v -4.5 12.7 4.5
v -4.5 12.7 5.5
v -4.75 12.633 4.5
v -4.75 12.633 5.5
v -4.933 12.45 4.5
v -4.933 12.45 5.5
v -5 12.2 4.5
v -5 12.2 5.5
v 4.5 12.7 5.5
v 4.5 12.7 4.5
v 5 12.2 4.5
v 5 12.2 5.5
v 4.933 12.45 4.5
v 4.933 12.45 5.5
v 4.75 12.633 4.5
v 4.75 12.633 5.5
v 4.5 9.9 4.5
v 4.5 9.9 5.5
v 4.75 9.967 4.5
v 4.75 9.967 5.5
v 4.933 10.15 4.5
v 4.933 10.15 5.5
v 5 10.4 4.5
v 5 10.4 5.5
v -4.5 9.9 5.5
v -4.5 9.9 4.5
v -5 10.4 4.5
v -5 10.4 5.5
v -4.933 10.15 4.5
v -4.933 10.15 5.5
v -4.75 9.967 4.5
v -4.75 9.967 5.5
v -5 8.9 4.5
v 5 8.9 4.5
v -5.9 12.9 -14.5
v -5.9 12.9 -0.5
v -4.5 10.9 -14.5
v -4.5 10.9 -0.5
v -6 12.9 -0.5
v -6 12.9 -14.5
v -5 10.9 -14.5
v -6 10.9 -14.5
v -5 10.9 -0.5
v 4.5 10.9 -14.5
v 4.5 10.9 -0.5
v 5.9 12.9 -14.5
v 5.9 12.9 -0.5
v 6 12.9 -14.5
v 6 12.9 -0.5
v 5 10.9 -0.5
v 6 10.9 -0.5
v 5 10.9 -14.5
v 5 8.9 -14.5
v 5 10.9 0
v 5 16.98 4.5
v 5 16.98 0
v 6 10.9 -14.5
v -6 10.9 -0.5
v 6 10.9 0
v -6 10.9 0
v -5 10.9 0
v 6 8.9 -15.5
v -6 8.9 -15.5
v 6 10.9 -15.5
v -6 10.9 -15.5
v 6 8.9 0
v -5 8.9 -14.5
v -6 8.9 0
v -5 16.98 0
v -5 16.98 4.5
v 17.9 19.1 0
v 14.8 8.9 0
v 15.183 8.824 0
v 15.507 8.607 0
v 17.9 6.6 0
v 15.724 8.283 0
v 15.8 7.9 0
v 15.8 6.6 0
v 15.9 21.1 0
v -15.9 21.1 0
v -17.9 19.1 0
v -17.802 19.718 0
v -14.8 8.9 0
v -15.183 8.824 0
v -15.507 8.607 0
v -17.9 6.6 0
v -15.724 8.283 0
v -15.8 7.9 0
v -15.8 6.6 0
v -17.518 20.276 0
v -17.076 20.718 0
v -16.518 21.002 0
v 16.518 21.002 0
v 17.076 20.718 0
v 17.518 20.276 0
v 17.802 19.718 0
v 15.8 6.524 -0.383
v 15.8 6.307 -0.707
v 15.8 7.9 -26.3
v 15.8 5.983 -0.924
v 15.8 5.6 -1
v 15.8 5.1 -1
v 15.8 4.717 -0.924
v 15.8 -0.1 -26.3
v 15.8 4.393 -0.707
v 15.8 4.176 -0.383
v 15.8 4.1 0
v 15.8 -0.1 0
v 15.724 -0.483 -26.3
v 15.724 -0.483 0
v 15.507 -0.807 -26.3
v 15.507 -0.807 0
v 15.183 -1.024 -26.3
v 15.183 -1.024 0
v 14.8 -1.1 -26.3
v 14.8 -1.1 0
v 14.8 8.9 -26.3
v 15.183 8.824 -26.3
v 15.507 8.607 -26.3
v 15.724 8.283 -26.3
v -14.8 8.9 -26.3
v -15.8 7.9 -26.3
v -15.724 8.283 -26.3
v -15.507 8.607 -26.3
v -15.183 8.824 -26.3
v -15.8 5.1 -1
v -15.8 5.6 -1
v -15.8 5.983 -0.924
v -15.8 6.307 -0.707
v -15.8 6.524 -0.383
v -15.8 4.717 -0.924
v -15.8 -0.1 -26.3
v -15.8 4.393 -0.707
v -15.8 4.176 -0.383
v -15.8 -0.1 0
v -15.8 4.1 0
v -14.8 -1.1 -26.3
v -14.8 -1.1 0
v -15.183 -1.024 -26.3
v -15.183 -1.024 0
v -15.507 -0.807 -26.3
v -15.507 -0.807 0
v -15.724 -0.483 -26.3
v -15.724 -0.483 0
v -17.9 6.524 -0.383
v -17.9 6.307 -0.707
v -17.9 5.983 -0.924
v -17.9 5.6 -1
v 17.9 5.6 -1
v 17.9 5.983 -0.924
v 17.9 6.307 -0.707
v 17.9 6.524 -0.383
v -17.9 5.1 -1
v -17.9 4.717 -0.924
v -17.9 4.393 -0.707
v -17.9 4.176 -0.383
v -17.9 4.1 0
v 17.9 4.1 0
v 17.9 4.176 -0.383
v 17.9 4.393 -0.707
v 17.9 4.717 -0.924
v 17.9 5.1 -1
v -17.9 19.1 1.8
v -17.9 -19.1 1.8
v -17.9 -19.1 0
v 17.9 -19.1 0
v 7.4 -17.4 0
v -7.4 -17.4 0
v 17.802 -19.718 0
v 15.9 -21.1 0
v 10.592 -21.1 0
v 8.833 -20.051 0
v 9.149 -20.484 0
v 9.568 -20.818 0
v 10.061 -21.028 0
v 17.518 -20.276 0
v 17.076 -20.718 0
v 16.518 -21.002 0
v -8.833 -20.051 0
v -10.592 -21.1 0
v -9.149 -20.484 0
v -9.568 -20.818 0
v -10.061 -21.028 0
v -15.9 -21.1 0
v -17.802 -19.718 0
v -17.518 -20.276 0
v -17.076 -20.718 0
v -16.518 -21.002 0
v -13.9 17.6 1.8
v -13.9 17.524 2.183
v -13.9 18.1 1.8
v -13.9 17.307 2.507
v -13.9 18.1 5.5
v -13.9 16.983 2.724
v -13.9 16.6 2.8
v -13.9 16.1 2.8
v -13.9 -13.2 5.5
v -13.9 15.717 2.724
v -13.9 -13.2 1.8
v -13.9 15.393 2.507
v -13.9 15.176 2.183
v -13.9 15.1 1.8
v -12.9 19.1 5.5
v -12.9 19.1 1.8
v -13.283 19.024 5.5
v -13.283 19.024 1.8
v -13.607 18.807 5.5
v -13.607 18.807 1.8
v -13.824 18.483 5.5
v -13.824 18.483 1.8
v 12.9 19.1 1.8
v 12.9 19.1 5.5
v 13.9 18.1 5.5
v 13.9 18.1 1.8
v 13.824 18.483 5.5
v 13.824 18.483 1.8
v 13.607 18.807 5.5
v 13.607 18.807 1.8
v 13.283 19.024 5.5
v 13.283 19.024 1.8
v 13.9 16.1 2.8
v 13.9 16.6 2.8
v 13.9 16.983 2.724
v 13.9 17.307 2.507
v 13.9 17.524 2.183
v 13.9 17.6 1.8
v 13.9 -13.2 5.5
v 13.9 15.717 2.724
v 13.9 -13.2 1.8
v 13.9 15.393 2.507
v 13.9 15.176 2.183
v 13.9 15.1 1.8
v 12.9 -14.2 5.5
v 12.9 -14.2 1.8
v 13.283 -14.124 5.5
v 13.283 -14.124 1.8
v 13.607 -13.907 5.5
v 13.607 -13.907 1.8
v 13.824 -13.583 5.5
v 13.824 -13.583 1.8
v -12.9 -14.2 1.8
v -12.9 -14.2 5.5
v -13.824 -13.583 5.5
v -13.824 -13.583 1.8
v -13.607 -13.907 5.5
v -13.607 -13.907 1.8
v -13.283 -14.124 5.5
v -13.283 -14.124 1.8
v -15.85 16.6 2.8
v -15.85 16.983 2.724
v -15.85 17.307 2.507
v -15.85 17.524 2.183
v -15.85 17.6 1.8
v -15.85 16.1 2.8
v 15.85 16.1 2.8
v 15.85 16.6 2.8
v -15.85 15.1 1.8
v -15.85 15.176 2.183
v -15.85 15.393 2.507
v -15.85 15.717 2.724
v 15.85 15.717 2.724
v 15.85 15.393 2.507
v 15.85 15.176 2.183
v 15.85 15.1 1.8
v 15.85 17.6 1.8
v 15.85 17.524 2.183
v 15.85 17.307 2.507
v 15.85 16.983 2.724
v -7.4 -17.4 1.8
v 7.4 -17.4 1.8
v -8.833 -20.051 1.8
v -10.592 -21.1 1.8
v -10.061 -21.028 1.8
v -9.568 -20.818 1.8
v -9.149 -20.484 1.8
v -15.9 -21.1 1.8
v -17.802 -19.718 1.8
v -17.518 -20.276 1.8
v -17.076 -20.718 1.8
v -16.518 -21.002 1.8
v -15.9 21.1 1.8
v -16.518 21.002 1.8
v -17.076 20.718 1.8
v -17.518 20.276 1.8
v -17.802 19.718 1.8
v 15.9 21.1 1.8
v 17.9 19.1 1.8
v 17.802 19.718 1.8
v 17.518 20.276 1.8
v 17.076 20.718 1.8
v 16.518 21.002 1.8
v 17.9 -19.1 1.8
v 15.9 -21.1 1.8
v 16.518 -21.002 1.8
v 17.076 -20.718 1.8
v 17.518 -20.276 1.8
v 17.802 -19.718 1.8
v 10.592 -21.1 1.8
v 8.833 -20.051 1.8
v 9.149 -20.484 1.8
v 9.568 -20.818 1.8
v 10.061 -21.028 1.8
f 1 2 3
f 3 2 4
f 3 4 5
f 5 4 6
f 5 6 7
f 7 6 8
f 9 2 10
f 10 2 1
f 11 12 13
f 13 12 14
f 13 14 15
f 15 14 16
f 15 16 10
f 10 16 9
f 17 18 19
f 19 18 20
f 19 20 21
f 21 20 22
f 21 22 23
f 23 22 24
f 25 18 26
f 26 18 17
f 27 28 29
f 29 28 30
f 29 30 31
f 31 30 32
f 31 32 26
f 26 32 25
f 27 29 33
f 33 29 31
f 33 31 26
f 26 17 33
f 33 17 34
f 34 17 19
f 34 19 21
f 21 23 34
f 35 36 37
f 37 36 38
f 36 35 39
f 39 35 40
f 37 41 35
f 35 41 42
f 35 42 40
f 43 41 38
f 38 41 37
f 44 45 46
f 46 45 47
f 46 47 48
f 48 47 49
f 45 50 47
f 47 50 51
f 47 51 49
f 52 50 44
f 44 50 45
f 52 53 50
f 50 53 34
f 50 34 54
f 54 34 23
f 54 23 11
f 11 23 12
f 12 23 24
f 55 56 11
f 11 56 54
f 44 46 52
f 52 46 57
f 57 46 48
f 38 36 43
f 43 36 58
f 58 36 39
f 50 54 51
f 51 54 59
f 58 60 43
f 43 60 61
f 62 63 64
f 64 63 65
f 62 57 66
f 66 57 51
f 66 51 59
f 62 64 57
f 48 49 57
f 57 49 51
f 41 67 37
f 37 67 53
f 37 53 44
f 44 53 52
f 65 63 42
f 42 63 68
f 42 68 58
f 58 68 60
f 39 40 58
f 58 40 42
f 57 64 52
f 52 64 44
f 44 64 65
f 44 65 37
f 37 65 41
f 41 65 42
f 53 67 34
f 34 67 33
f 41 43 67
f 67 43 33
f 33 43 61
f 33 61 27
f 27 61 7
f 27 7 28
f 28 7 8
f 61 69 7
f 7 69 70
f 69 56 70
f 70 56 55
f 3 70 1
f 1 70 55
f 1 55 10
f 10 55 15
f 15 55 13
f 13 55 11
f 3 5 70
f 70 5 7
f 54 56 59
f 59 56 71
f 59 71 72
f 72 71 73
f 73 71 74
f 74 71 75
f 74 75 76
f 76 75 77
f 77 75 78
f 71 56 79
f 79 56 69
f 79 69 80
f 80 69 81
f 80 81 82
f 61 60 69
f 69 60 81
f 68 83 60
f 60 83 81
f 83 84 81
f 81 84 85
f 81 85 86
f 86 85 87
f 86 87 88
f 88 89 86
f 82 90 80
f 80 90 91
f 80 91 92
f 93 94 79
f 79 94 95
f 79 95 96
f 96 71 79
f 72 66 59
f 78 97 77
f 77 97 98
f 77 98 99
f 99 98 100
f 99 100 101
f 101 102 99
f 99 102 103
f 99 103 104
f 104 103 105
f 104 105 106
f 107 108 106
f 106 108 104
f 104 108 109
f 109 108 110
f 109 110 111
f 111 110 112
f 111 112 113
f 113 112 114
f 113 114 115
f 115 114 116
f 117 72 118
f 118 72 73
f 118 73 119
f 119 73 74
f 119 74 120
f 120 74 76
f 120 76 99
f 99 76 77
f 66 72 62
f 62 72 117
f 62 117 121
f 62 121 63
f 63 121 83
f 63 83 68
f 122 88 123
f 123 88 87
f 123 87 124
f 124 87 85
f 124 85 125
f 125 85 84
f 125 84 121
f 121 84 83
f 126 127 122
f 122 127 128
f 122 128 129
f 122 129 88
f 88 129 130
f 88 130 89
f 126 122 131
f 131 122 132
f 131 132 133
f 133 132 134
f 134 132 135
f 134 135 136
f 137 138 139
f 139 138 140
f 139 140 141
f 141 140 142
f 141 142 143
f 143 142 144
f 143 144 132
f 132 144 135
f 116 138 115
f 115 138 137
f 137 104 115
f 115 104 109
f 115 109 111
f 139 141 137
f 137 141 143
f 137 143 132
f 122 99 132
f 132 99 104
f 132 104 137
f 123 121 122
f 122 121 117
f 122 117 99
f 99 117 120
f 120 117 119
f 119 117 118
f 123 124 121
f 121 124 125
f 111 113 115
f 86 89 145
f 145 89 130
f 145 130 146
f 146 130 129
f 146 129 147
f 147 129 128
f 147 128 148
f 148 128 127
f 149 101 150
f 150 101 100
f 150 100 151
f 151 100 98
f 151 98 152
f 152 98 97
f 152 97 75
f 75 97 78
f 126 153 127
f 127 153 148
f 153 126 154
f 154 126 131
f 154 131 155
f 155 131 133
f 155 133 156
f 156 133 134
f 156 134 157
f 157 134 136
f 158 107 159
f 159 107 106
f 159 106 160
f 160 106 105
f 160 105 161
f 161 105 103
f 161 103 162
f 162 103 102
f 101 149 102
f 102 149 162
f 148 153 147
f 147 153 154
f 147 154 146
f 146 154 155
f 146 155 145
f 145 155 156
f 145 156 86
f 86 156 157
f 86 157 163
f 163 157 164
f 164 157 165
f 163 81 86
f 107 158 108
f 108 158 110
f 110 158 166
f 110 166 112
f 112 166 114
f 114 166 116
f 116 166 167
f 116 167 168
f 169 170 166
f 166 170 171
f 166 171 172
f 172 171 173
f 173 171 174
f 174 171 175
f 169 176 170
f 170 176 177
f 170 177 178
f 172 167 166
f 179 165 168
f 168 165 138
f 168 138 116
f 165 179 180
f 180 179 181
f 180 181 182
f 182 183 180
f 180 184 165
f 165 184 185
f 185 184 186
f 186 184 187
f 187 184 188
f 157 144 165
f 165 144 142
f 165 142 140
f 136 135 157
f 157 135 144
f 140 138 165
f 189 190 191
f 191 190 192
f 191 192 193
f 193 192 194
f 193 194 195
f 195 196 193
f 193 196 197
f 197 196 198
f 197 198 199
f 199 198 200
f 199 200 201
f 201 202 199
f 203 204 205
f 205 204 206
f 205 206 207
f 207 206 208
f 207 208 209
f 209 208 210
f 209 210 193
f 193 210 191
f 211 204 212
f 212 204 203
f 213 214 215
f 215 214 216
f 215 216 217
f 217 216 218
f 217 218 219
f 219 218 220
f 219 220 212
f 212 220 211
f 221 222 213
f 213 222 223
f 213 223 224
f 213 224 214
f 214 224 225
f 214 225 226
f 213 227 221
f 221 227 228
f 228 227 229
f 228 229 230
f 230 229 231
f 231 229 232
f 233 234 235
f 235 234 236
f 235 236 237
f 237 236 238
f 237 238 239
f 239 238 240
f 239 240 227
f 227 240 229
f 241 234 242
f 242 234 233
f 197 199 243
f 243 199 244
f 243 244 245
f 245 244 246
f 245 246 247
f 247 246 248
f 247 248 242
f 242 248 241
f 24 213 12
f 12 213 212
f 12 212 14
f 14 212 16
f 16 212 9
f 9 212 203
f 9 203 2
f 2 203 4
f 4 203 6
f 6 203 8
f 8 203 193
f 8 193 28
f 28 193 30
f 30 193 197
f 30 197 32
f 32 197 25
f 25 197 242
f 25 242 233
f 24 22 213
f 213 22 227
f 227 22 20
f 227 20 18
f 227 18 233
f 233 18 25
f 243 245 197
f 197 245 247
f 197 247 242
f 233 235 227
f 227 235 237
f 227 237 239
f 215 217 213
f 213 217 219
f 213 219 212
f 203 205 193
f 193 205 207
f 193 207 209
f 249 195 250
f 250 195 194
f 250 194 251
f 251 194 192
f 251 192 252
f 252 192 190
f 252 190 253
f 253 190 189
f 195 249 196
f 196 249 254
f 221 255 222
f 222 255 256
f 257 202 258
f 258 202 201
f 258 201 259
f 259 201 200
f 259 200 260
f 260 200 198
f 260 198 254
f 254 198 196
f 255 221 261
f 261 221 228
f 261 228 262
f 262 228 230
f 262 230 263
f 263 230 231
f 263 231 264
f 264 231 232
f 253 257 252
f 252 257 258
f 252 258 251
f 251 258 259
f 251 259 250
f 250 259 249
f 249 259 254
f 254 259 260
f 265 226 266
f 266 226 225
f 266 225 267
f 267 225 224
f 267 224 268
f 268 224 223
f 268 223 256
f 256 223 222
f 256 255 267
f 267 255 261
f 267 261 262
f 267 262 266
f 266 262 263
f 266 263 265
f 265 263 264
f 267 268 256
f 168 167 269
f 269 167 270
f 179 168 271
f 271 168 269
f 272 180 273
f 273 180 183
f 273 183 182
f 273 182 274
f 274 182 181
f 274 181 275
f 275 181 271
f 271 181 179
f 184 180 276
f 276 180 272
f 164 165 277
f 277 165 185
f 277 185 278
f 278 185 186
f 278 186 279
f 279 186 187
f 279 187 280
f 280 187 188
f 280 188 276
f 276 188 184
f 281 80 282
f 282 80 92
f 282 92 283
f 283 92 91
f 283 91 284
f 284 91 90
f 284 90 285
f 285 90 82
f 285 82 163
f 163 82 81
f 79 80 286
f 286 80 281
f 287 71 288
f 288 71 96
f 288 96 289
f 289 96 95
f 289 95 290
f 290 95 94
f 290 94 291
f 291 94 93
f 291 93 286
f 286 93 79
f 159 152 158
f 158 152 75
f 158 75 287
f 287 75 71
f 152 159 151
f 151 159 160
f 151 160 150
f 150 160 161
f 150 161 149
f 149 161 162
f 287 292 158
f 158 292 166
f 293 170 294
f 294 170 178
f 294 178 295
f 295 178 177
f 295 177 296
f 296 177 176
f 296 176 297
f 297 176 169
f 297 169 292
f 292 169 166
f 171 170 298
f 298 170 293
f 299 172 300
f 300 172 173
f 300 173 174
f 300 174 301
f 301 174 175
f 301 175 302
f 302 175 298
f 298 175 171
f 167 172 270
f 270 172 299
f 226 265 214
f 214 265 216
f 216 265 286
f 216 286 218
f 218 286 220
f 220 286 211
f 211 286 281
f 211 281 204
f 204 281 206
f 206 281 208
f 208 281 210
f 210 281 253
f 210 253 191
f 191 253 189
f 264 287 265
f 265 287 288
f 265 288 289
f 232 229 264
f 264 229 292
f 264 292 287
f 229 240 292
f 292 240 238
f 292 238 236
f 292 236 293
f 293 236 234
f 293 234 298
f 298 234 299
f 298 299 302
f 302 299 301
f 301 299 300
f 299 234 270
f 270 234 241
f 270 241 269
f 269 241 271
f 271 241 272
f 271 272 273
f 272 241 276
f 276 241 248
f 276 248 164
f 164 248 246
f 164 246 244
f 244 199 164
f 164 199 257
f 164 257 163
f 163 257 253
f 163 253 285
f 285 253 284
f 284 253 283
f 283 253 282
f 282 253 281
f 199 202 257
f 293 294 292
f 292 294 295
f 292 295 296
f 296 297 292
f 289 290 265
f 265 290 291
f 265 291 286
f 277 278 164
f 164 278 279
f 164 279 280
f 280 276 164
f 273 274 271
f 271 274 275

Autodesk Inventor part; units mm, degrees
ref_plane "YZ Plane" through (0, 0, 0) normal (1, 0, 0) x (0, 1, 0)
ref_plane "XZ Plane" through (0, 0, 0) normal (0, 1, 0) x (-1, 0, 0)
ref_plane "XY Plane" through (0, 0, 0) normal (0, 0, 1) x (1, 0, 0)
sketch "Sketch1" plane through (0, 0, 0) normal (0, 0, 1) x (1, 0, 0)
  line L0 (17.9, -19.1) -> (17.9, 19.1)
  line L1 (15.9, 21.1) -> (-15.9, 21.1)
  line L2 (-17.9, 19.1) -> (-17.9, -19.1)
  line L3 (-15.9, -21.1) -> (-10.5924, -21.1)
  line L4 (17.9, -21.1) -> (-17.9, 21.1) construction
  line L5 (17.9, 21.1) -> (-17.9, -21.1) construction
  line L6 (-7.4, -17.4) -> (7.4, -17.4)
  line L7 (-7.4, -17.4) -> (-8.833, -20.051)
  line L8 (7.4, -17.4) -> (8.833, -20.051)
  line L9 (10.5924, -21.1) -> (15.9, -21.1)
  line L10 (-9.4, -21.1) -> (9.4, -21.1)
  arc A0 (-15.9, 21.1) -> (-17.9, 19.1) centre (-15.9, 19.1) ccw
  arc A1 (17.9, 19.1) -> (15.9, 21.1) centre (15.9, 19.1) ccw
  arc A2 (15.9, -21.1) -> (17.9, -19.1) centre (15.9, -19.1) ccw
  arc A3 (8.833, -20.051) -> (10.5924, -21.1) centre (10.5924, -19.1) ccw
  arc A4 (-10.5924, -21.1) -> (-8.833, -20.051) centre (-10.5924, -19.1) ccw
  arc A5 (-17.9, -19.1) -> (-15.9, -21.1) centre (-15.9, -19.1) ccw
  point P0 (0, 0)
  dimension "d0" = 35.8
  dimension "d1" = 42.2
  dimension "d2" = 38.5
  dimension "d3" = 10.5
  dimension "d4" = 10.5
  dimension "d5" = 8.5
  dimension "d6" = 8.5
  dimension "d7" = 2
extrude "Extrusion1" add sketch "Sketch1" along normal blind 1.8
sketch "Sketch2" plane through (0, 0, 1.8) normal (0, 0, 1) x (1, 0, 0)
  line L0 (-15.85, 15.1) -> (15.85, 15.1)
  line L1 (15.85, 15.1) -> (15.85, 17.6)
  line L2 (15.85, 17.6) -> (-15.85, 17.6)
  line L3 (-15.85, 17.6) -> (-15.85, 15.1)
  line L4 (-15.85, 15.1) -> (15.85, 17.6) construction
  line L5 (15.85, 15.1) -> (-15.85, 17.6) construction
  line L6 (15.9, 21.1) -> (-15.9, 21.1) projected
  point P0 (0, 0)
  point P1 (0, 16.35)
  point P2 (0, 16.35)
  point P3 (15.85, 16.35)
  point P4 (-15.85, 16.35)
  dimension "d10" = 2.5
  dimension "d11" = 6
  dimension "d12" = 31.7
extrude "Extrusion2" add sketch "Sketch2" along normal blind 1
fillet "Fillet1" radius 1 2 edges at (0, 17.6, 2.8) (0, 15.1, 2.8)
sketch "Sketch3" plane through (0, 0, 1.8) normal (0, 0, 1) x (1, 0, 0)
  line L0 (-12.9, 19.1) -> (12.9, 19.1)
  line L1 (13.9, 18.1) -> (13.9, -13.2)
  line L2 (12.9, -14.2) -> (-12.9, -14.2)
  line L3 (-13.9, -13.2) -> (-13.9, 18.1)
  line L4 (15.9, 21.1) -> (-15.9, 21.1) projected
  line L5 (-13.9, 2.9131) -> (-17.9, 2.9131)
  line L6 (-17.9, 19.1) -> (-17.9, -19.1) projected
  line L7 (13.9, 2.9131) -> (17.9, 2.9131)
  line L8 (17.9, -19.1) -> (17.9, 19.1) projected
  arc A0 (-12.9, 19.1) -> (-13.9, 18.1) centre (-12.9, 18.1) ccw
  arc A1 (13.9, 18.1) -> (12.9, 19.1) centre (12.9, 18.1) ccw
  arc A2 (12.9, -14.2) -> (13.9, -13.2) centre (12.9, -13.2) ccw
  arc A3 (-13.9, -13.2) -> (-12.9, -14.2) centre (-12.9, -13.2) ccw
  point P0 (0, 0)
  point P1 (13.9, -14.2)
  point P2 (13.9, 19.1)
  point P3 (-13.9, -14.2)
  dimension "d16" = 27.8
  dimension "d17" = 33.3
  dimension "d18" = 2
  dimension "d19" = 1
extrude "Extrusion3" add sketch "Sketch3" along normal blind 3.7
sketch "Sketch4" plane through (0, 0, 0) normal (0, 0, -1) x (-1, 0, 0)
  line L0 (-17.9, -19.1) -> (-17.9, 19.1) projected
  line L1 (17.9, 19.1) -> (17.9, -19.1) projected
  line L2 (-17.9, 6.6) -> (17.9, 6.6)
  line L3 (17.9, 6.6) -> (17.9, 4.1)
  line L4 (17.9, 4.1) -> (-17.9, 4.1)
  line L5 (-17.9, 4.1) -> (-17.9, 6.6)
  line L6 (-15.9, 21.1) -> (15.9, 21.1) projected
  point P0 (0, 0)
  dimension "d22" = 2.5
  dimension "d23" = 17
extrude "Extrusion4" add sketch "Sketch4" along normal blind 1
fillet "Fillet2" radius 1 2 edges at (0, 6.6, -1) (0, 4.1, -1)
sketch "Sketch5" plane through (0, 0, 0) normal (0, 0, -1) x (-1, 0, 0)
  line L0 (-14.8, 8.9) -> (14.8, 8.9)
  line L1 (15.8, 7.9) -> (15.8, -0.1)
  line L2 (14.8, -1.1) -> (-14.8, -1.1)
  line L3 (-15.8, -0.1) -> (-15.8, 7.9)
  line L4 (-15.9, 21.1) -> (15.9, 21.1) projected
  line L5 (-17.9, 6.6) -> (-17.9, 19.1) projected
  line L6 (17.9, 4.1) -> (17.9, -19.1) projected
  arc A0 (-15.8, -0.1) -> (-14.8, -1.1) centre (-14.8, -0.1) ccw
  arc A1 (-14.8, 8.9) -> (-15.8, 7.9) centre (-14.8, 7.9) ccw
  arc A2 (15.8, 7.9) -> (14.8, 8.9) centre (14.8, 7.9) ccw
  arc A3 (14.8, -1.1) -> (15.8, -0.1) centre (14.8, -0.1) ccw
  point P0 (0, 0)
  point P1 (0, 8.9)
  dimension "d27" = 22.2
  dimension "d28" = 2.1
  dimension "d29" = 10
  dimension "d30" = 2.1
  dimension "d31" = 1
extrude "Extrusion5" add sketch "Sketch5" along normal blind 26.3
sketch "Sketch6" plane through (0, 0, 0) normal (0, 0, -1) x (-1, 0, 0)
  line L0 (-5, 16.9799) -> (5, 16.9799)
  line L1 (5, 16.9799) -> (5, 8.9)
  line L2 (5, 8.9) -> (-5, 8.9)
  line L3 (-5, 8.9) -> (-5, 16.9799)
  line L4 (14.8, 8.9) -> (-14.8, 8.9) projected
  line L5 (5, 16.9799) -> (17.9, 16.9799)
  line L6 (17.9, 19.1) -> (17.9, 6.6) projected
  line L7 (-5, 16.9799) -> (-17.9, 16.9799)
  line L8 (-17.9, -19.1) -> (-17.9, 19.1) projected
  point P0 (0, 0)
  point P1 (-5, 12.94)
  dimension "d34" = 10
extrude "Extrusion6" cut sketch "Sketch6" against normal blind 4.5
sketch "Sketch7" plane through (-14.8, 8.9, -26.3) normal (0, 1, 0) x (1, 0, 0)
  line L0 (9.8, -30.8) -> (19.8, -30.8) projected
  line L1 (14.8, -30.8) -> (14.8, -11.8)
  line L2 (8.8, -11.8) -> (20.8, -11.8)
  line L3 (20.8, -11.8) -> (20.8, -10.8)
  line L4 (20.8, -10.8) -> (8.8, -10.8)
  line L5 (8.8, -10.8) -> (8.8, -11.8)
  line L6 (20.8, -11.8) -> (20.8, -26.3)
  line L7 (20.8, -26.3) -> (19.8, -26.3)
  line L8 (19.8, -26.3) -> (19.8, -11.8)
  line L9 (8.8, -11.8) -> (8.8, -26.3)
  line L10 (8.8, -26.3) -> (9.8, -26.3)
  line L11 (9.8, -26.3) -> (9.8, -11.8)
  point P0 (14.8, -26.3)
  dimension "d37" = 19
  dimension "d38" = 12
  dimension "d39" = 1
  dimension "d40" = 1
  dimension "d41" = 14.5
extrude "Extrusion7" add sketch "Sketch7" along normal blind 2
sketch "Sketch8" plane through (-14.8, 10.9, -26.3) normal (0, 1, 0) x (1, 0, 0)
  line L0 (9.8, -11.8) -> (19.8, -11.8) projected
  line L1 (20.8, -26.3) -> (20.8, -10.8) projected
  line L2 (19.8, -11.8) -> (20.8, -11.8)
  line L3 (20.8, -11.8) -> (20.8, -25.8)
  line L4 (20.8, -25.8) -> (19.8, -25.8)
  line L5 (19.8, -25.8) -> (19.8, -11.8)
  line L6 (9.8, -11.8) -> (9.8, -30.8) projected
  line L7 (8.8, -26.3) -> (8.8, -10.8) projected
  line L8 (9.8, -11.8) -> (8.8, -11.8)
  line L9 (8.8, -11.8) -> (8.8, -25.8)
  line L10 (8.8, -25.8) -> (9.8, -25.8)
  line L11 (9.8, -25.8) -> (9.8, -11.8)
  point P0 (14.8, -26.3)
  point P1 (9.8, -25.8)
  point P2 (9.8, -25.8)
extrude "Extrusion8" add sketch "Sketch8" along normal blind 2
sketch "Sketch9" plane through (5, 8.9, -14.5) normal (-1, 0, 0) x (0, 0, 1)
  line L0 (0, 2) -> (0, 4) projected
  line L1 (14, 0) -> (14, 4) projected
  line L2 (0, 4) -> (14, 4)
  line L3 (14, 4) -> (14, 2)
  line L4 (14, 2) -> (0, 2)
  line L5 (0, 2) -> (0, 4)
  point P0 (14.5, -8.9)
  point P1 (0, 2)
extrude "Extrusion9" add sketch "Sketch9" along normal blind 0.5
chamfer "Chamfer1" distance 2 angle 35 1 edges at (4.5, 12.9, -7.5) measured on face at (4.5, 11.5667, -5.1667)
mirror "Mirror1" about plane through (0, 0, 0) normal (1, 0, 0) of "Extrusion9", "Chamfer1"
sketch "Sketch10" plane through (0, 0, 4.5) normal (0, 0, -1) x (-1, 0, 0)
  line L0 (-4.5, 9.9) -> (4.5, 9.9)
  line L1 (5, 10.4) -> (5, 12.2)
  line L2 (4.5, 12.7) -> (-4.5, 12.7)
  line L3 (-5, 12.2) -> (-5, 10.4)
  line L4 (5, 8.9) -> (-5, 8.9) projected
  line L5 (-5, 8.9) -> (-5, 16.9799) projected
  arc A0 (-5, 10.4) -> (-4.5, 9.9) centre (-4.5, 10.4) ccw
  arc A1 (-4.5, 12.7) -> (-5, 12.2) centre (-4.5, 12.2) ccw
  arc A2 (5, 12.2) -> (4.5, 12.7) centre (4.5, 12.2) ccw
  arc A3 (4.5, 9.9) -> (5, 10.4) centre (4.5, 10.4) ccw
  point P0 (0, 0)
  point P1 (-5, 11.3)
  dimension "d51" = 1
  dimension "d52" = 10
  dimension "d53" = 0.5
  dimension "d54" = 2.8
extrude "Extrusion10" cut sketch "Sketch10" against normal blind 2
properties part number "PS2 USB C PD Mount"
